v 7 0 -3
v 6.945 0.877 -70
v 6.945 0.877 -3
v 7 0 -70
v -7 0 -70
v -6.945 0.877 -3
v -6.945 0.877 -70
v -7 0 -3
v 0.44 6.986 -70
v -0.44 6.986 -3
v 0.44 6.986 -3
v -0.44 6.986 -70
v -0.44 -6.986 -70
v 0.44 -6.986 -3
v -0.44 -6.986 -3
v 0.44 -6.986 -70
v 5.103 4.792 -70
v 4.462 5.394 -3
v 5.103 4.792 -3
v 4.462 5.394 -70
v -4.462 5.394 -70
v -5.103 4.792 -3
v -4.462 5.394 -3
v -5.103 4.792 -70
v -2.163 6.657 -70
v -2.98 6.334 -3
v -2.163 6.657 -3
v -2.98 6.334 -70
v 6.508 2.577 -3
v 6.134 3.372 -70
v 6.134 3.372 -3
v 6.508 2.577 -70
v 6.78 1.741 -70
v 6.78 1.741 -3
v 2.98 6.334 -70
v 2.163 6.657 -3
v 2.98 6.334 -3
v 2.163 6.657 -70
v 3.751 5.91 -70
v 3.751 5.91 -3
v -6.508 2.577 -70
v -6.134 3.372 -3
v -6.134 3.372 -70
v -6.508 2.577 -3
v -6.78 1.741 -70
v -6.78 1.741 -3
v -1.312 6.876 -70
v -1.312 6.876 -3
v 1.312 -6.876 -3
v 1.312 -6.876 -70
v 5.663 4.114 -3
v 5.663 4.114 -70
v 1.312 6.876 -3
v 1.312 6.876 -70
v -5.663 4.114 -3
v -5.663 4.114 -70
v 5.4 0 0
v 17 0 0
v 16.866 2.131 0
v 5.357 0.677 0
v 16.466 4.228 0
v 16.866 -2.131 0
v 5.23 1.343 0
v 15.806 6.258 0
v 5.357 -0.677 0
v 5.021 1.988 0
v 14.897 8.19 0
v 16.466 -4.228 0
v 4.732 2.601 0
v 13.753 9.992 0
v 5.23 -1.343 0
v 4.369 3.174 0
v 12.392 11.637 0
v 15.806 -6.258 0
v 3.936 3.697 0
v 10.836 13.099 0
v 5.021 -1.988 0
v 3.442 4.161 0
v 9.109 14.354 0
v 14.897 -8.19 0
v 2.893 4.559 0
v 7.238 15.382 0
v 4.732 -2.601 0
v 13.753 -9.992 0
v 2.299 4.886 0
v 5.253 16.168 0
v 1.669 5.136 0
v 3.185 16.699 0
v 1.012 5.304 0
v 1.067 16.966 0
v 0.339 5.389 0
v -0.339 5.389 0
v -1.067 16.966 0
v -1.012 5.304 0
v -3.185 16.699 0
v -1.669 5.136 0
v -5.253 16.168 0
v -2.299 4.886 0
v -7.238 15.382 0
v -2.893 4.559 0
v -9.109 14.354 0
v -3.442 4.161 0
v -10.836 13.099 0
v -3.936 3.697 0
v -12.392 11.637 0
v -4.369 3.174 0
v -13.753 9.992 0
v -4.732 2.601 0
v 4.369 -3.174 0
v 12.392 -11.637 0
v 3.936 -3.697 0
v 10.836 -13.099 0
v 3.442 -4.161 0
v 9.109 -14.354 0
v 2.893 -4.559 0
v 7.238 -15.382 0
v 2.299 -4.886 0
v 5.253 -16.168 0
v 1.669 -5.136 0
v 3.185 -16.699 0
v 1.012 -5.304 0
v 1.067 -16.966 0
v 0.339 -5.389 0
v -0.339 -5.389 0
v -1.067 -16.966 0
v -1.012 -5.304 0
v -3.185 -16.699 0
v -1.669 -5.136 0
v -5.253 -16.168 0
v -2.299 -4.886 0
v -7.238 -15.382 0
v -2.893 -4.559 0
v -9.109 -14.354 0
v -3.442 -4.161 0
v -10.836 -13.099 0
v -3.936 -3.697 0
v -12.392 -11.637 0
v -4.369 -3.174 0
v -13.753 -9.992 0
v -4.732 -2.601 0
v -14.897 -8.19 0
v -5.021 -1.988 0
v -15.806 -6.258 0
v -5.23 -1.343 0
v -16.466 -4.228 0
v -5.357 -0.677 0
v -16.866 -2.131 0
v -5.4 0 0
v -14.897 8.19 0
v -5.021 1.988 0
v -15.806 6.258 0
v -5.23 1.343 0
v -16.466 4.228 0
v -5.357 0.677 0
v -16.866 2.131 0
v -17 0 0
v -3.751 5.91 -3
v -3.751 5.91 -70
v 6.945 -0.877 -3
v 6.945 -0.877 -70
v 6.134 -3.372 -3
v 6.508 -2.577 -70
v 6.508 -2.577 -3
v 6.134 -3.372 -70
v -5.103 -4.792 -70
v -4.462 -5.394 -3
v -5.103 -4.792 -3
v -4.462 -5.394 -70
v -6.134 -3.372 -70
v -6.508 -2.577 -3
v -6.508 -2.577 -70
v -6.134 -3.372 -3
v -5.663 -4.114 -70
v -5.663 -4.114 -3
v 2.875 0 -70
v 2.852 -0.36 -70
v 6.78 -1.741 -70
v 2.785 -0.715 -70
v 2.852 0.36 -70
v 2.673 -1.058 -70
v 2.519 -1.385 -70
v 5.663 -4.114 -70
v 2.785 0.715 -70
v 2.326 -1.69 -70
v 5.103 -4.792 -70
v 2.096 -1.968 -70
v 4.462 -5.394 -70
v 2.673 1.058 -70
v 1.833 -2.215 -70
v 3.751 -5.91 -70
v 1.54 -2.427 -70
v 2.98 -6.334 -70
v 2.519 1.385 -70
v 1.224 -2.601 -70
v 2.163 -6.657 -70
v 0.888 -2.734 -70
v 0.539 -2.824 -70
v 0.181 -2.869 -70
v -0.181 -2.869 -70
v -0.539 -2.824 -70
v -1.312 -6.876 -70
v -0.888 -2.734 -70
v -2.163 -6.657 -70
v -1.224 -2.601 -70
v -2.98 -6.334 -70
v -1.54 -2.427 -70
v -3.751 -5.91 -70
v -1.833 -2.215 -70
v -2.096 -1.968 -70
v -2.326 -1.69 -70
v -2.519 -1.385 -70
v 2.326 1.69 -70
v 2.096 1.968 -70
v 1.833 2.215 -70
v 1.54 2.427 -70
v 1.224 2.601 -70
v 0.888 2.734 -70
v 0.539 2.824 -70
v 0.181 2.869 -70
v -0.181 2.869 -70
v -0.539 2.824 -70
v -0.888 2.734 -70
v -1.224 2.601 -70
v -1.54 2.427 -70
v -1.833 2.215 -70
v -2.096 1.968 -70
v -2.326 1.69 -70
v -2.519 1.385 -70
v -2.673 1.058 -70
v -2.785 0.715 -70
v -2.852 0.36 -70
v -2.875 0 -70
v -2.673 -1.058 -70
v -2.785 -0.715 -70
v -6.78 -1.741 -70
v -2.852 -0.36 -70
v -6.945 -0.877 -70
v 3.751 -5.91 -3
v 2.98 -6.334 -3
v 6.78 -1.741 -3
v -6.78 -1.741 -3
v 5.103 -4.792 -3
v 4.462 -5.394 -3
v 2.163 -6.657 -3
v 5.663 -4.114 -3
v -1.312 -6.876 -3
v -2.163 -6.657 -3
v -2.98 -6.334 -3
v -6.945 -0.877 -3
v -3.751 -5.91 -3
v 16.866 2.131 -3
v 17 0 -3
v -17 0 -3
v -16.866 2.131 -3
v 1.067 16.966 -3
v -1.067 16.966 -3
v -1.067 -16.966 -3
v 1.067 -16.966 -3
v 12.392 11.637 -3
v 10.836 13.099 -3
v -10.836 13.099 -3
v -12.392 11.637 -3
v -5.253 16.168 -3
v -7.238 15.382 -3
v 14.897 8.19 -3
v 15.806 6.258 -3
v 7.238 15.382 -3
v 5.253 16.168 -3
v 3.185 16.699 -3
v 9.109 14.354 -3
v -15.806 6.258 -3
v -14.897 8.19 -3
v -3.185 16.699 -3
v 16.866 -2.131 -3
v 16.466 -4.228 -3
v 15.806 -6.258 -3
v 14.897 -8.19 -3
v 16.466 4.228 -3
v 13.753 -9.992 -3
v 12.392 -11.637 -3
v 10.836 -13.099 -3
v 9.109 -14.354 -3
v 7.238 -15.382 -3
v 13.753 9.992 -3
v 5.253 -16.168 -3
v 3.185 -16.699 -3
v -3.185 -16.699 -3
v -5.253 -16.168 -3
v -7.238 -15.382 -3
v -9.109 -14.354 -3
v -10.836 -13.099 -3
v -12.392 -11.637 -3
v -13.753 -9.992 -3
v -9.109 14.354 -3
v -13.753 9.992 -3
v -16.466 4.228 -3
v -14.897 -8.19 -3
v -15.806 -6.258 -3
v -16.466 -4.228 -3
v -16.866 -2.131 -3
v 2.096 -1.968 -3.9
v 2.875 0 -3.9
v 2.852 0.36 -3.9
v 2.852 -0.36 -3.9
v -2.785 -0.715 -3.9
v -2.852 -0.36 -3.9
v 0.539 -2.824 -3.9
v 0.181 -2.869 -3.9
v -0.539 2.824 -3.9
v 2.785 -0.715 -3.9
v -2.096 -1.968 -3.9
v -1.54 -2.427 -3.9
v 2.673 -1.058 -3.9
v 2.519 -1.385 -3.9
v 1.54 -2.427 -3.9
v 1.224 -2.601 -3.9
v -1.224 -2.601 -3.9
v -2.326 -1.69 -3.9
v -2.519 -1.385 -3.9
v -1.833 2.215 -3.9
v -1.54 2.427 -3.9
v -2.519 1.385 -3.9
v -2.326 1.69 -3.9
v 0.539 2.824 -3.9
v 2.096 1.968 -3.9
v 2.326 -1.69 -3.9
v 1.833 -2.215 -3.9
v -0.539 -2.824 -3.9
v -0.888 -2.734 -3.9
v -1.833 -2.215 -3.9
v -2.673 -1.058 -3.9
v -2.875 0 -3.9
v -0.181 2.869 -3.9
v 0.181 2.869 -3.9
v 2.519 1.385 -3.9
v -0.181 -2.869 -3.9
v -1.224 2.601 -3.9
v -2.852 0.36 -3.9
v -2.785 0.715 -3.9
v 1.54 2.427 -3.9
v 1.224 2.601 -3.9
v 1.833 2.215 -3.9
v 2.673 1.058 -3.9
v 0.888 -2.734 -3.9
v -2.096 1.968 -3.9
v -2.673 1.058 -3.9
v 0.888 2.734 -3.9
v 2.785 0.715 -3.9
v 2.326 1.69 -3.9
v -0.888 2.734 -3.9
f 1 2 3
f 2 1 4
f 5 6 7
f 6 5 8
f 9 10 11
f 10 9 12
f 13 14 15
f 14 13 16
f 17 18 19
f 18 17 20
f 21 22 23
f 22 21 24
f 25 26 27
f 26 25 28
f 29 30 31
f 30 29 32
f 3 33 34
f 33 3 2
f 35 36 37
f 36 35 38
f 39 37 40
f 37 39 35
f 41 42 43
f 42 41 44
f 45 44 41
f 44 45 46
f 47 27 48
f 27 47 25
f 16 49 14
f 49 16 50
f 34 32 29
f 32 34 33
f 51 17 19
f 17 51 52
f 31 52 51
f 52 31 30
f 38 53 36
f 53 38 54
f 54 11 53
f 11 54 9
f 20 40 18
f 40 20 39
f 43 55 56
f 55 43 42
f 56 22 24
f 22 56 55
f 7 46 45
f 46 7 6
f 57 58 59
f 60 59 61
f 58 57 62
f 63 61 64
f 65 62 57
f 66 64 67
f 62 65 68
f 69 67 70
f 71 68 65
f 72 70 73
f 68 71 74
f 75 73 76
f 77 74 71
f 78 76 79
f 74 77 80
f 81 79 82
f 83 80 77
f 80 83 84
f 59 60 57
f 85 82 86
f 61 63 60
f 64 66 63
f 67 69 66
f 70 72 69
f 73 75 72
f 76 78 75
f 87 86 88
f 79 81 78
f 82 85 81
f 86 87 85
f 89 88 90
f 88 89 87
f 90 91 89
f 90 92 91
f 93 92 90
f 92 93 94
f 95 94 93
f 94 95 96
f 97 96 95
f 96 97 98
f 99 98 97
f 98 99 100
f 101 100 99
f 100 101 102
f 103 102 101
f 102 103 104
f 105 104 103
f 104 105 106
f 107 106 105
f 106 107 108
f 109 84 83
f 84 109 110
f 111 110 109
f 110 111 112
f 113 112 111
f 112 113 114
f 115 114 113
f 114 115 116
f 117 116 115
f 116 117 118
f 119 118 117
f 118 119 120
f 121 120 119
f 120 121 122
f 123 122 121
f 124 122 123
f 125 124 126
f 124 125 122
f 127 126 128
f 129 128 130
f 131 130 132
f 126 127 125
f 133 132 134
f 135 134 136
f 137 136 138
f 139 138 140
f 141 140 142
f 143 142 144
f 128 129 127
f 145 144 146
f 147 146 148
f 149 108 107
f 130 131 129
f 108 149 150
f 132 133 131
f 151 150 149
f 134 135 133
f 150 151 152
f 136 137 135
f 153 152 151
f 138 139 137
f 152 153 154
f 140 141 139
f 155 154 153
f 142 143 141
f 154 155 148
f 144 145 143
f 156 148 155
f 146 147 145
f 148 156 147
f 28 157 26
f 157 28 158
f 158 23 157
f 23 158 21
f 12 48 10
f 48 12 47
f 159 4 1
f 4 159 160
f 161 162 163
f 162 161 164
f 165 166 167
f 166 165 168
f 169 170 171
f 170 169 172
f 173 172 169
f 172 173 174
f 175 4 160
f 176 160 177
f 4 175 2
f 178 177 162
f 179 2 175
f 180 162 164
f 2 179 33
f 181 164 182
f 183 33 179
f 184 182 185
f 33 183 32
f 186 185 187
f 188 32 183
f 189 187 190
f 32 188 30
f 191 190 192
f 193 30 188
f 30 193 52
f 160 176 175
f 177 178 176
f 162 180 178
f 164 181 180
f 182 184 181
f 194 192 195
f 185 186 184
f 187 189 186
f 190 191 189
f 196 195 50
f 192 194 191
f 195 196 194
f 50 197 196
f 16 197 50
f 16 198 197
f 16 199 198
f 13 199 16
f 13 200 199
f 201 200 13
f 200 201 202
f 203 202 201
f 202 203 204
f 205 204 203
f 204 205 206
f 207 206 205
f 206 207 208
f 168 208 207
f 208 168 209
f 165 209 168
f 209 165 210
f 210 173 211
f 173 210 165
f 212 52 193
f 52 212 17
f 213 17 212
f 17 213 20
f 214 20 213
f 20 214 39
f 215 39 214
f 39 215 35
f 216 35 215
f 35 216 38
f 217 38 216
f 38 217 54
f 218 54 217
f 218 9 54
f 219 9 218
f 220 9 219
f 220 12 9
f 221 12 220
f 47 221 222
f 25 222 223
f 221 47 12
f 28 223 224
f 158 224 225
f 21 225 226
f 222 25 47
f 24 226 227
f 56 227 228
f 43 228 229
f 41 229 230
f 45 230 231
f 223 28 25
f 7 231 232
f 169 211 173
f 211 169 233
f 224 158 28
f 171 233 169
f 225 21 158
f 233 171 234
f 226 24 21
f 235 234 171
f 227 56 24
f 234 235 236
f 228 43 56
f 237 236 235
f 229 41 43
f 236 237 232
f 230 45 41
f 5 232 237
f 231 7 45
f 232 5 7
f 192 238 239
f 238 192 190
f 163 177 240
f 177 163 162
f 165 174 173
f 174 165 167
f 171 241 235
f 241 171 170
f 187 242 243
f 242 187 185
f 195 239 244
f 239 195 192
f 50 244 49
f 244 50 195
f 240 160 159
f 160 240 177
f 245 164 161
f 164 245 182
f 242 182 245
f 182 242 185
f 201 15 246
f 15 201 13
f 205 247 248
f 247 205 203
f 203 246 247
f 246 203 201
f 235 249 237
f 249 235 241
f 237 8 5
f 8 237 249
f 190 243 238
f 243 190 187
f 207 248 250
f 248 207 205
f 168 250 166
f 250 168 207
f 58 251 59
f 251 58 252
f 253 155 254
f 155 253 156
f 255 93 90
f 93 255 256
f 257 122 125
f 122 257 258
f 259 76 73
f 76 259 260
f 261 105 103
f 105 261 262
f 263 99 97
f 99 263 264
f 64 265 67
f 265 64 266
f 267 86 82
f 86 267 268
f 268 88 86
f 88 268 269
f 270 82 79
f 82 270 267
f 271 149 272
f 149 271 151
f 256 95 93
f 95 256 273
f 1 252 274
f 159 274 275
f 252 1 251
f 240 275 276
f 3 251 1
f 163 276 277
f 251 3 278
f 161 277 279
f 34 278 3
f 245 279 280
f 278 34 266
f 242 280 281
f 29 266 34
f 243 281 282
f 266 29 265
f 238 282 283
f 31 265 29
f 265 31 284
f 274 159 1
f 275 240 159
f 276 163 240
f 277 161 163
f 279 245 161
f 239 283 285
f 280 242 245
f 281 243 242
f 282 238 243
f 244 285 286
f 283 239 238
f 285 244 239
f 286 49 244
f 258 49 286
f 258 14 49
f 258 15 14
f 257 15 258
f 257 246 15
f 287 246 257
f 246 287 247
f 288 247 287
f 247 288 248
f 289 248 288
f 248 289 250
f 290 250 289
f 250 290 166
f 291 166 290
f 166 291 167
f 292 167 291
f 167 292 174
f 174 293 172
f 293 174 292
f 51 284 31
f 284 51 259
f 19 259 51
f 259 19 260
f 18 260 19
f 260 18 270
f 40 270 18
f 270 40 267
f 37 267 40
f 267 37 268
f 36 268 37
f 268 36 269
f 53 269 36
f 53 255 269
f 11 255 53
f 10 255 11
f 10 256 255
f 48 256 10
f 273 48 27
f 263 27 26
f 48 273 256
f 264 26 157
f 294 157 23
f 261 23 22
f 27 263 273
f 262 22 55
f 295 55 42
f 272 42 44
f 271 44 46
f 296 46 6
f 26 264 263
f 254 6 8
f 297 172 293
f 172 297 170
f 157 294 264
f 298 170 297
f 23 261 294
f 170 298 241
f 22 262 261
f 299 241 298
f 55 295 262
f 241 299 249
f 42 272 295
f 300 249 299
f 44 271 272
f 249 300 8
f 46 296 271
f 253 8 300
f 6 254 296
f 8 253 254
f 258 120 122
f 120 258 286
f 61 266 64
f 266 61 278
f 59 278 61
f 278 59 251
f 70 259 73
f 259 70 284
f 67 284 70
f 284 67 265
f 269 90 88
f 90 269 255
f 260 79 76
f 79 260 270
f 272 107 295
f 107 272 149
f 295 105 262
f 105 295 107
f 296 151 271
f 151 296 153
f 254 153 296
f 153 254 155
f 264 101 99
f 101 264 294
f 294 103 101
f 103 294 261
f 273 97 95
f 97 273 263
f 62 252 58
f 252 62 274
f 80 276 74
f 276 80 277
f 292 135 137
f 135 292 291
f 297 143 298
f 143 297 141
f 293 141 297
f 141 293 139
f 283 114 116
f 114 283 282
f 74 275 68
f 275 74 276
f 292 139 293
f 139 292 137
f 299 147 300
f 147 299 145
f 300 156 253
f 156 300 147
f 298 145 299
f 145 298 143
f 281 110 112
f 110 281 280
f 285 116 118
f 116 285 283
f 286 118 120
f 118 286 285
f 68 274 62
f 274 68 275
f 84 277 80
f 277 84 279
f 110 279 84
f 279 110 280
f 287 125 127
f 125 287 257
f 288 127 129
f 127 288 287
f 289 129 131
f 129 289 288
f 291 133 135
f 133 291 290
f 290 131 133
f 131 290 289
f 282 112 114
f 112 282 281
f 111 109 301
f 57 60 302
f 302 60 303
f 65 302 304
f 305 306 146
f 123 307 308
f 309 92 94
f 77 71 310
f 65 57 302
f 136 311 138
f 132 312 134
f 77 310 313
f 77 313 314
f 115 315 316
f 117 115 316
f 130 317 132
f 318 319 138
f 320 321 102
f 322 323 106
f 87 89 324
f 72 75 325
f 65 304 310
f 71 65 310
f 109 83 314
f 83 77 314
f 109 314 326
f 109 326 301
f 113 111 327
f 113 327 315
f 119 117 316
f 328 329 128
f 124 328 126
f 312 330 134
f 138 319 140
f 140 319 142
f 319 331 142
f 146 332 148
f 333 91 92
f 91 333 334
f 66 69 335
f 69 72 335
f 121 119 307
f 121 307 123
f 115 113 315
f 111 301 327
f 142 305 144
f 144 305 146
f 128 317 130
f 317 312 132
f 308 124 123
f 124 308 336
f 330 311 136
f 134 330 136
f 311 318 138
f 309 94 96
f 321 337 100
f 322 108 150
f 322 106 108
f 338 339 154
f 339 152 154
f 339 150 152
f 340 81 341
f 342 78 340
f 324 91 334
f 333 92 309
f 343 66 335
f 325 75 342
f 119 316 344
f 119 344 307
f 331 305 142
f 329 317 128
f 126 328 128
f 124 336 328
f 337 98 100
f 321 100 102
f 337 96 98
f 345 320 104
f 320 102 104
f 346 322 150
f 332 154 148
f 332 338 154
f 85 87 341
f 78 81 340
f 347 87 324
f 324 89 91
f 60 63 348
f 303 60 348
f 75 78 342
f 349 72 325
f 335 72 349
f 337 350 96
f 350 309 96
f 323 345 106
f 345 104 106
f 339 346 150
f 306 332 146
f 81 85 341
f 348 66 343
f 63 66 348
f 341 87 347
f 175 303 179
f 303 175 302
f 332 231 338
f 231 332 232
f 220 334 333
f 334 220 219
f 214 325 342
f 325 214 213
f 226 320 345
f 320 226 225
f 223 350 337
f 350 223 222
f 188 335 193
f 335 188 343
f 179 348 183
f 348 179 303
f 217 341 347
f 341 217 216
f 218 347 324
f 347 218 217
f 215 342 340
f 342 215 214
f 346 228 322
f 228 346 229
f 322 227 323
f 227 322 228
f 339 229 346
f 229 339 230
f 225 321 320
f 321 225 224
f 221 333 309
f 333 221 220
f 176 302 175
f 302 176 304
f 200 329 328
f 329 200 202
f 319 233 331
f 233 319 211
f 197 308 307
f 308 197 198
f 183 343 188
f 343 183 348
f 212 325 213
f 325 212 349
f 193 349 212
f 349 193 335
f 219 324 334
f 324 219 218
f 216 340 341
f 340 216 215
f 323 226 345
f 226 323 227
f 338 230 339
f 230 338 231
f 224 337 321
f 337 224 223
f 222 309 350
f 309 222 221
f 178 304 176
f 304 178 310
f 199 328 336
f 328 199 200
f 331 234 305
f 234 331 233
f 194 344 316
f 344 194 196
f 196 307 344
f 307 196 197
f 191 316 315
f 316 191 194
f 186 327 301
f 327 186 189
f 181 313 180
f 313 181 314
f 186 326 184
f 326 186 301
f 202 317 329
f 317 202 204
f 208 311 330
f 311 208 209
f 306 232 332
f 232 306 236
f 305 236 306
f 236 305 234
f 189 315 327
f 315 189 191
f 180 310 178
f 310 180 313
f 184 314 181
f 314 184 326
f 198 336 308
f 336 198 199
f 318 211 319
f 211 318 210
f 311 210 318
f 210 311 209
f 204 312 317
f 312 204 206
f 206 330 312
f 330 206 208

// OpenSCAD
$fn = 50;


difference() {
	union() {
		translate(v = [0, 0, -70.0000000000]) {
			cylinder(h = 70, r = 7.0000000000);
		}
		translate(v = [0, 0, -3.0000000000]) {
			cylinder(h = 3, r = 17.0000000000);
		}
	}
	union() {
		translate(v = [0, 0, 0]) {
			rotate(a = [0, 0, 0]) {
				difference() {
					union() {
						#translate(v = [0, 0, -70.0000000000]) {
							cylinder(h = 70, r = 2.6000000000);
						}
						#translate(v = [0, 0, -3.9000000000]) {
							cylinder(h = 3.9000000000, r1 = 2.8750000000, r2 = 5.4000000000);
						}
						#translate(v = [0, 0, -70.0000000000]) {
							cylinder(h = 70, r = 2.8750000000);
						}
						#translate(v = [0, 0, -70.0000000000]) {
							cylinder(h = 70, r = 2.6000000000);
						}
					}
					union();
				}
			}
		}
	}
}
